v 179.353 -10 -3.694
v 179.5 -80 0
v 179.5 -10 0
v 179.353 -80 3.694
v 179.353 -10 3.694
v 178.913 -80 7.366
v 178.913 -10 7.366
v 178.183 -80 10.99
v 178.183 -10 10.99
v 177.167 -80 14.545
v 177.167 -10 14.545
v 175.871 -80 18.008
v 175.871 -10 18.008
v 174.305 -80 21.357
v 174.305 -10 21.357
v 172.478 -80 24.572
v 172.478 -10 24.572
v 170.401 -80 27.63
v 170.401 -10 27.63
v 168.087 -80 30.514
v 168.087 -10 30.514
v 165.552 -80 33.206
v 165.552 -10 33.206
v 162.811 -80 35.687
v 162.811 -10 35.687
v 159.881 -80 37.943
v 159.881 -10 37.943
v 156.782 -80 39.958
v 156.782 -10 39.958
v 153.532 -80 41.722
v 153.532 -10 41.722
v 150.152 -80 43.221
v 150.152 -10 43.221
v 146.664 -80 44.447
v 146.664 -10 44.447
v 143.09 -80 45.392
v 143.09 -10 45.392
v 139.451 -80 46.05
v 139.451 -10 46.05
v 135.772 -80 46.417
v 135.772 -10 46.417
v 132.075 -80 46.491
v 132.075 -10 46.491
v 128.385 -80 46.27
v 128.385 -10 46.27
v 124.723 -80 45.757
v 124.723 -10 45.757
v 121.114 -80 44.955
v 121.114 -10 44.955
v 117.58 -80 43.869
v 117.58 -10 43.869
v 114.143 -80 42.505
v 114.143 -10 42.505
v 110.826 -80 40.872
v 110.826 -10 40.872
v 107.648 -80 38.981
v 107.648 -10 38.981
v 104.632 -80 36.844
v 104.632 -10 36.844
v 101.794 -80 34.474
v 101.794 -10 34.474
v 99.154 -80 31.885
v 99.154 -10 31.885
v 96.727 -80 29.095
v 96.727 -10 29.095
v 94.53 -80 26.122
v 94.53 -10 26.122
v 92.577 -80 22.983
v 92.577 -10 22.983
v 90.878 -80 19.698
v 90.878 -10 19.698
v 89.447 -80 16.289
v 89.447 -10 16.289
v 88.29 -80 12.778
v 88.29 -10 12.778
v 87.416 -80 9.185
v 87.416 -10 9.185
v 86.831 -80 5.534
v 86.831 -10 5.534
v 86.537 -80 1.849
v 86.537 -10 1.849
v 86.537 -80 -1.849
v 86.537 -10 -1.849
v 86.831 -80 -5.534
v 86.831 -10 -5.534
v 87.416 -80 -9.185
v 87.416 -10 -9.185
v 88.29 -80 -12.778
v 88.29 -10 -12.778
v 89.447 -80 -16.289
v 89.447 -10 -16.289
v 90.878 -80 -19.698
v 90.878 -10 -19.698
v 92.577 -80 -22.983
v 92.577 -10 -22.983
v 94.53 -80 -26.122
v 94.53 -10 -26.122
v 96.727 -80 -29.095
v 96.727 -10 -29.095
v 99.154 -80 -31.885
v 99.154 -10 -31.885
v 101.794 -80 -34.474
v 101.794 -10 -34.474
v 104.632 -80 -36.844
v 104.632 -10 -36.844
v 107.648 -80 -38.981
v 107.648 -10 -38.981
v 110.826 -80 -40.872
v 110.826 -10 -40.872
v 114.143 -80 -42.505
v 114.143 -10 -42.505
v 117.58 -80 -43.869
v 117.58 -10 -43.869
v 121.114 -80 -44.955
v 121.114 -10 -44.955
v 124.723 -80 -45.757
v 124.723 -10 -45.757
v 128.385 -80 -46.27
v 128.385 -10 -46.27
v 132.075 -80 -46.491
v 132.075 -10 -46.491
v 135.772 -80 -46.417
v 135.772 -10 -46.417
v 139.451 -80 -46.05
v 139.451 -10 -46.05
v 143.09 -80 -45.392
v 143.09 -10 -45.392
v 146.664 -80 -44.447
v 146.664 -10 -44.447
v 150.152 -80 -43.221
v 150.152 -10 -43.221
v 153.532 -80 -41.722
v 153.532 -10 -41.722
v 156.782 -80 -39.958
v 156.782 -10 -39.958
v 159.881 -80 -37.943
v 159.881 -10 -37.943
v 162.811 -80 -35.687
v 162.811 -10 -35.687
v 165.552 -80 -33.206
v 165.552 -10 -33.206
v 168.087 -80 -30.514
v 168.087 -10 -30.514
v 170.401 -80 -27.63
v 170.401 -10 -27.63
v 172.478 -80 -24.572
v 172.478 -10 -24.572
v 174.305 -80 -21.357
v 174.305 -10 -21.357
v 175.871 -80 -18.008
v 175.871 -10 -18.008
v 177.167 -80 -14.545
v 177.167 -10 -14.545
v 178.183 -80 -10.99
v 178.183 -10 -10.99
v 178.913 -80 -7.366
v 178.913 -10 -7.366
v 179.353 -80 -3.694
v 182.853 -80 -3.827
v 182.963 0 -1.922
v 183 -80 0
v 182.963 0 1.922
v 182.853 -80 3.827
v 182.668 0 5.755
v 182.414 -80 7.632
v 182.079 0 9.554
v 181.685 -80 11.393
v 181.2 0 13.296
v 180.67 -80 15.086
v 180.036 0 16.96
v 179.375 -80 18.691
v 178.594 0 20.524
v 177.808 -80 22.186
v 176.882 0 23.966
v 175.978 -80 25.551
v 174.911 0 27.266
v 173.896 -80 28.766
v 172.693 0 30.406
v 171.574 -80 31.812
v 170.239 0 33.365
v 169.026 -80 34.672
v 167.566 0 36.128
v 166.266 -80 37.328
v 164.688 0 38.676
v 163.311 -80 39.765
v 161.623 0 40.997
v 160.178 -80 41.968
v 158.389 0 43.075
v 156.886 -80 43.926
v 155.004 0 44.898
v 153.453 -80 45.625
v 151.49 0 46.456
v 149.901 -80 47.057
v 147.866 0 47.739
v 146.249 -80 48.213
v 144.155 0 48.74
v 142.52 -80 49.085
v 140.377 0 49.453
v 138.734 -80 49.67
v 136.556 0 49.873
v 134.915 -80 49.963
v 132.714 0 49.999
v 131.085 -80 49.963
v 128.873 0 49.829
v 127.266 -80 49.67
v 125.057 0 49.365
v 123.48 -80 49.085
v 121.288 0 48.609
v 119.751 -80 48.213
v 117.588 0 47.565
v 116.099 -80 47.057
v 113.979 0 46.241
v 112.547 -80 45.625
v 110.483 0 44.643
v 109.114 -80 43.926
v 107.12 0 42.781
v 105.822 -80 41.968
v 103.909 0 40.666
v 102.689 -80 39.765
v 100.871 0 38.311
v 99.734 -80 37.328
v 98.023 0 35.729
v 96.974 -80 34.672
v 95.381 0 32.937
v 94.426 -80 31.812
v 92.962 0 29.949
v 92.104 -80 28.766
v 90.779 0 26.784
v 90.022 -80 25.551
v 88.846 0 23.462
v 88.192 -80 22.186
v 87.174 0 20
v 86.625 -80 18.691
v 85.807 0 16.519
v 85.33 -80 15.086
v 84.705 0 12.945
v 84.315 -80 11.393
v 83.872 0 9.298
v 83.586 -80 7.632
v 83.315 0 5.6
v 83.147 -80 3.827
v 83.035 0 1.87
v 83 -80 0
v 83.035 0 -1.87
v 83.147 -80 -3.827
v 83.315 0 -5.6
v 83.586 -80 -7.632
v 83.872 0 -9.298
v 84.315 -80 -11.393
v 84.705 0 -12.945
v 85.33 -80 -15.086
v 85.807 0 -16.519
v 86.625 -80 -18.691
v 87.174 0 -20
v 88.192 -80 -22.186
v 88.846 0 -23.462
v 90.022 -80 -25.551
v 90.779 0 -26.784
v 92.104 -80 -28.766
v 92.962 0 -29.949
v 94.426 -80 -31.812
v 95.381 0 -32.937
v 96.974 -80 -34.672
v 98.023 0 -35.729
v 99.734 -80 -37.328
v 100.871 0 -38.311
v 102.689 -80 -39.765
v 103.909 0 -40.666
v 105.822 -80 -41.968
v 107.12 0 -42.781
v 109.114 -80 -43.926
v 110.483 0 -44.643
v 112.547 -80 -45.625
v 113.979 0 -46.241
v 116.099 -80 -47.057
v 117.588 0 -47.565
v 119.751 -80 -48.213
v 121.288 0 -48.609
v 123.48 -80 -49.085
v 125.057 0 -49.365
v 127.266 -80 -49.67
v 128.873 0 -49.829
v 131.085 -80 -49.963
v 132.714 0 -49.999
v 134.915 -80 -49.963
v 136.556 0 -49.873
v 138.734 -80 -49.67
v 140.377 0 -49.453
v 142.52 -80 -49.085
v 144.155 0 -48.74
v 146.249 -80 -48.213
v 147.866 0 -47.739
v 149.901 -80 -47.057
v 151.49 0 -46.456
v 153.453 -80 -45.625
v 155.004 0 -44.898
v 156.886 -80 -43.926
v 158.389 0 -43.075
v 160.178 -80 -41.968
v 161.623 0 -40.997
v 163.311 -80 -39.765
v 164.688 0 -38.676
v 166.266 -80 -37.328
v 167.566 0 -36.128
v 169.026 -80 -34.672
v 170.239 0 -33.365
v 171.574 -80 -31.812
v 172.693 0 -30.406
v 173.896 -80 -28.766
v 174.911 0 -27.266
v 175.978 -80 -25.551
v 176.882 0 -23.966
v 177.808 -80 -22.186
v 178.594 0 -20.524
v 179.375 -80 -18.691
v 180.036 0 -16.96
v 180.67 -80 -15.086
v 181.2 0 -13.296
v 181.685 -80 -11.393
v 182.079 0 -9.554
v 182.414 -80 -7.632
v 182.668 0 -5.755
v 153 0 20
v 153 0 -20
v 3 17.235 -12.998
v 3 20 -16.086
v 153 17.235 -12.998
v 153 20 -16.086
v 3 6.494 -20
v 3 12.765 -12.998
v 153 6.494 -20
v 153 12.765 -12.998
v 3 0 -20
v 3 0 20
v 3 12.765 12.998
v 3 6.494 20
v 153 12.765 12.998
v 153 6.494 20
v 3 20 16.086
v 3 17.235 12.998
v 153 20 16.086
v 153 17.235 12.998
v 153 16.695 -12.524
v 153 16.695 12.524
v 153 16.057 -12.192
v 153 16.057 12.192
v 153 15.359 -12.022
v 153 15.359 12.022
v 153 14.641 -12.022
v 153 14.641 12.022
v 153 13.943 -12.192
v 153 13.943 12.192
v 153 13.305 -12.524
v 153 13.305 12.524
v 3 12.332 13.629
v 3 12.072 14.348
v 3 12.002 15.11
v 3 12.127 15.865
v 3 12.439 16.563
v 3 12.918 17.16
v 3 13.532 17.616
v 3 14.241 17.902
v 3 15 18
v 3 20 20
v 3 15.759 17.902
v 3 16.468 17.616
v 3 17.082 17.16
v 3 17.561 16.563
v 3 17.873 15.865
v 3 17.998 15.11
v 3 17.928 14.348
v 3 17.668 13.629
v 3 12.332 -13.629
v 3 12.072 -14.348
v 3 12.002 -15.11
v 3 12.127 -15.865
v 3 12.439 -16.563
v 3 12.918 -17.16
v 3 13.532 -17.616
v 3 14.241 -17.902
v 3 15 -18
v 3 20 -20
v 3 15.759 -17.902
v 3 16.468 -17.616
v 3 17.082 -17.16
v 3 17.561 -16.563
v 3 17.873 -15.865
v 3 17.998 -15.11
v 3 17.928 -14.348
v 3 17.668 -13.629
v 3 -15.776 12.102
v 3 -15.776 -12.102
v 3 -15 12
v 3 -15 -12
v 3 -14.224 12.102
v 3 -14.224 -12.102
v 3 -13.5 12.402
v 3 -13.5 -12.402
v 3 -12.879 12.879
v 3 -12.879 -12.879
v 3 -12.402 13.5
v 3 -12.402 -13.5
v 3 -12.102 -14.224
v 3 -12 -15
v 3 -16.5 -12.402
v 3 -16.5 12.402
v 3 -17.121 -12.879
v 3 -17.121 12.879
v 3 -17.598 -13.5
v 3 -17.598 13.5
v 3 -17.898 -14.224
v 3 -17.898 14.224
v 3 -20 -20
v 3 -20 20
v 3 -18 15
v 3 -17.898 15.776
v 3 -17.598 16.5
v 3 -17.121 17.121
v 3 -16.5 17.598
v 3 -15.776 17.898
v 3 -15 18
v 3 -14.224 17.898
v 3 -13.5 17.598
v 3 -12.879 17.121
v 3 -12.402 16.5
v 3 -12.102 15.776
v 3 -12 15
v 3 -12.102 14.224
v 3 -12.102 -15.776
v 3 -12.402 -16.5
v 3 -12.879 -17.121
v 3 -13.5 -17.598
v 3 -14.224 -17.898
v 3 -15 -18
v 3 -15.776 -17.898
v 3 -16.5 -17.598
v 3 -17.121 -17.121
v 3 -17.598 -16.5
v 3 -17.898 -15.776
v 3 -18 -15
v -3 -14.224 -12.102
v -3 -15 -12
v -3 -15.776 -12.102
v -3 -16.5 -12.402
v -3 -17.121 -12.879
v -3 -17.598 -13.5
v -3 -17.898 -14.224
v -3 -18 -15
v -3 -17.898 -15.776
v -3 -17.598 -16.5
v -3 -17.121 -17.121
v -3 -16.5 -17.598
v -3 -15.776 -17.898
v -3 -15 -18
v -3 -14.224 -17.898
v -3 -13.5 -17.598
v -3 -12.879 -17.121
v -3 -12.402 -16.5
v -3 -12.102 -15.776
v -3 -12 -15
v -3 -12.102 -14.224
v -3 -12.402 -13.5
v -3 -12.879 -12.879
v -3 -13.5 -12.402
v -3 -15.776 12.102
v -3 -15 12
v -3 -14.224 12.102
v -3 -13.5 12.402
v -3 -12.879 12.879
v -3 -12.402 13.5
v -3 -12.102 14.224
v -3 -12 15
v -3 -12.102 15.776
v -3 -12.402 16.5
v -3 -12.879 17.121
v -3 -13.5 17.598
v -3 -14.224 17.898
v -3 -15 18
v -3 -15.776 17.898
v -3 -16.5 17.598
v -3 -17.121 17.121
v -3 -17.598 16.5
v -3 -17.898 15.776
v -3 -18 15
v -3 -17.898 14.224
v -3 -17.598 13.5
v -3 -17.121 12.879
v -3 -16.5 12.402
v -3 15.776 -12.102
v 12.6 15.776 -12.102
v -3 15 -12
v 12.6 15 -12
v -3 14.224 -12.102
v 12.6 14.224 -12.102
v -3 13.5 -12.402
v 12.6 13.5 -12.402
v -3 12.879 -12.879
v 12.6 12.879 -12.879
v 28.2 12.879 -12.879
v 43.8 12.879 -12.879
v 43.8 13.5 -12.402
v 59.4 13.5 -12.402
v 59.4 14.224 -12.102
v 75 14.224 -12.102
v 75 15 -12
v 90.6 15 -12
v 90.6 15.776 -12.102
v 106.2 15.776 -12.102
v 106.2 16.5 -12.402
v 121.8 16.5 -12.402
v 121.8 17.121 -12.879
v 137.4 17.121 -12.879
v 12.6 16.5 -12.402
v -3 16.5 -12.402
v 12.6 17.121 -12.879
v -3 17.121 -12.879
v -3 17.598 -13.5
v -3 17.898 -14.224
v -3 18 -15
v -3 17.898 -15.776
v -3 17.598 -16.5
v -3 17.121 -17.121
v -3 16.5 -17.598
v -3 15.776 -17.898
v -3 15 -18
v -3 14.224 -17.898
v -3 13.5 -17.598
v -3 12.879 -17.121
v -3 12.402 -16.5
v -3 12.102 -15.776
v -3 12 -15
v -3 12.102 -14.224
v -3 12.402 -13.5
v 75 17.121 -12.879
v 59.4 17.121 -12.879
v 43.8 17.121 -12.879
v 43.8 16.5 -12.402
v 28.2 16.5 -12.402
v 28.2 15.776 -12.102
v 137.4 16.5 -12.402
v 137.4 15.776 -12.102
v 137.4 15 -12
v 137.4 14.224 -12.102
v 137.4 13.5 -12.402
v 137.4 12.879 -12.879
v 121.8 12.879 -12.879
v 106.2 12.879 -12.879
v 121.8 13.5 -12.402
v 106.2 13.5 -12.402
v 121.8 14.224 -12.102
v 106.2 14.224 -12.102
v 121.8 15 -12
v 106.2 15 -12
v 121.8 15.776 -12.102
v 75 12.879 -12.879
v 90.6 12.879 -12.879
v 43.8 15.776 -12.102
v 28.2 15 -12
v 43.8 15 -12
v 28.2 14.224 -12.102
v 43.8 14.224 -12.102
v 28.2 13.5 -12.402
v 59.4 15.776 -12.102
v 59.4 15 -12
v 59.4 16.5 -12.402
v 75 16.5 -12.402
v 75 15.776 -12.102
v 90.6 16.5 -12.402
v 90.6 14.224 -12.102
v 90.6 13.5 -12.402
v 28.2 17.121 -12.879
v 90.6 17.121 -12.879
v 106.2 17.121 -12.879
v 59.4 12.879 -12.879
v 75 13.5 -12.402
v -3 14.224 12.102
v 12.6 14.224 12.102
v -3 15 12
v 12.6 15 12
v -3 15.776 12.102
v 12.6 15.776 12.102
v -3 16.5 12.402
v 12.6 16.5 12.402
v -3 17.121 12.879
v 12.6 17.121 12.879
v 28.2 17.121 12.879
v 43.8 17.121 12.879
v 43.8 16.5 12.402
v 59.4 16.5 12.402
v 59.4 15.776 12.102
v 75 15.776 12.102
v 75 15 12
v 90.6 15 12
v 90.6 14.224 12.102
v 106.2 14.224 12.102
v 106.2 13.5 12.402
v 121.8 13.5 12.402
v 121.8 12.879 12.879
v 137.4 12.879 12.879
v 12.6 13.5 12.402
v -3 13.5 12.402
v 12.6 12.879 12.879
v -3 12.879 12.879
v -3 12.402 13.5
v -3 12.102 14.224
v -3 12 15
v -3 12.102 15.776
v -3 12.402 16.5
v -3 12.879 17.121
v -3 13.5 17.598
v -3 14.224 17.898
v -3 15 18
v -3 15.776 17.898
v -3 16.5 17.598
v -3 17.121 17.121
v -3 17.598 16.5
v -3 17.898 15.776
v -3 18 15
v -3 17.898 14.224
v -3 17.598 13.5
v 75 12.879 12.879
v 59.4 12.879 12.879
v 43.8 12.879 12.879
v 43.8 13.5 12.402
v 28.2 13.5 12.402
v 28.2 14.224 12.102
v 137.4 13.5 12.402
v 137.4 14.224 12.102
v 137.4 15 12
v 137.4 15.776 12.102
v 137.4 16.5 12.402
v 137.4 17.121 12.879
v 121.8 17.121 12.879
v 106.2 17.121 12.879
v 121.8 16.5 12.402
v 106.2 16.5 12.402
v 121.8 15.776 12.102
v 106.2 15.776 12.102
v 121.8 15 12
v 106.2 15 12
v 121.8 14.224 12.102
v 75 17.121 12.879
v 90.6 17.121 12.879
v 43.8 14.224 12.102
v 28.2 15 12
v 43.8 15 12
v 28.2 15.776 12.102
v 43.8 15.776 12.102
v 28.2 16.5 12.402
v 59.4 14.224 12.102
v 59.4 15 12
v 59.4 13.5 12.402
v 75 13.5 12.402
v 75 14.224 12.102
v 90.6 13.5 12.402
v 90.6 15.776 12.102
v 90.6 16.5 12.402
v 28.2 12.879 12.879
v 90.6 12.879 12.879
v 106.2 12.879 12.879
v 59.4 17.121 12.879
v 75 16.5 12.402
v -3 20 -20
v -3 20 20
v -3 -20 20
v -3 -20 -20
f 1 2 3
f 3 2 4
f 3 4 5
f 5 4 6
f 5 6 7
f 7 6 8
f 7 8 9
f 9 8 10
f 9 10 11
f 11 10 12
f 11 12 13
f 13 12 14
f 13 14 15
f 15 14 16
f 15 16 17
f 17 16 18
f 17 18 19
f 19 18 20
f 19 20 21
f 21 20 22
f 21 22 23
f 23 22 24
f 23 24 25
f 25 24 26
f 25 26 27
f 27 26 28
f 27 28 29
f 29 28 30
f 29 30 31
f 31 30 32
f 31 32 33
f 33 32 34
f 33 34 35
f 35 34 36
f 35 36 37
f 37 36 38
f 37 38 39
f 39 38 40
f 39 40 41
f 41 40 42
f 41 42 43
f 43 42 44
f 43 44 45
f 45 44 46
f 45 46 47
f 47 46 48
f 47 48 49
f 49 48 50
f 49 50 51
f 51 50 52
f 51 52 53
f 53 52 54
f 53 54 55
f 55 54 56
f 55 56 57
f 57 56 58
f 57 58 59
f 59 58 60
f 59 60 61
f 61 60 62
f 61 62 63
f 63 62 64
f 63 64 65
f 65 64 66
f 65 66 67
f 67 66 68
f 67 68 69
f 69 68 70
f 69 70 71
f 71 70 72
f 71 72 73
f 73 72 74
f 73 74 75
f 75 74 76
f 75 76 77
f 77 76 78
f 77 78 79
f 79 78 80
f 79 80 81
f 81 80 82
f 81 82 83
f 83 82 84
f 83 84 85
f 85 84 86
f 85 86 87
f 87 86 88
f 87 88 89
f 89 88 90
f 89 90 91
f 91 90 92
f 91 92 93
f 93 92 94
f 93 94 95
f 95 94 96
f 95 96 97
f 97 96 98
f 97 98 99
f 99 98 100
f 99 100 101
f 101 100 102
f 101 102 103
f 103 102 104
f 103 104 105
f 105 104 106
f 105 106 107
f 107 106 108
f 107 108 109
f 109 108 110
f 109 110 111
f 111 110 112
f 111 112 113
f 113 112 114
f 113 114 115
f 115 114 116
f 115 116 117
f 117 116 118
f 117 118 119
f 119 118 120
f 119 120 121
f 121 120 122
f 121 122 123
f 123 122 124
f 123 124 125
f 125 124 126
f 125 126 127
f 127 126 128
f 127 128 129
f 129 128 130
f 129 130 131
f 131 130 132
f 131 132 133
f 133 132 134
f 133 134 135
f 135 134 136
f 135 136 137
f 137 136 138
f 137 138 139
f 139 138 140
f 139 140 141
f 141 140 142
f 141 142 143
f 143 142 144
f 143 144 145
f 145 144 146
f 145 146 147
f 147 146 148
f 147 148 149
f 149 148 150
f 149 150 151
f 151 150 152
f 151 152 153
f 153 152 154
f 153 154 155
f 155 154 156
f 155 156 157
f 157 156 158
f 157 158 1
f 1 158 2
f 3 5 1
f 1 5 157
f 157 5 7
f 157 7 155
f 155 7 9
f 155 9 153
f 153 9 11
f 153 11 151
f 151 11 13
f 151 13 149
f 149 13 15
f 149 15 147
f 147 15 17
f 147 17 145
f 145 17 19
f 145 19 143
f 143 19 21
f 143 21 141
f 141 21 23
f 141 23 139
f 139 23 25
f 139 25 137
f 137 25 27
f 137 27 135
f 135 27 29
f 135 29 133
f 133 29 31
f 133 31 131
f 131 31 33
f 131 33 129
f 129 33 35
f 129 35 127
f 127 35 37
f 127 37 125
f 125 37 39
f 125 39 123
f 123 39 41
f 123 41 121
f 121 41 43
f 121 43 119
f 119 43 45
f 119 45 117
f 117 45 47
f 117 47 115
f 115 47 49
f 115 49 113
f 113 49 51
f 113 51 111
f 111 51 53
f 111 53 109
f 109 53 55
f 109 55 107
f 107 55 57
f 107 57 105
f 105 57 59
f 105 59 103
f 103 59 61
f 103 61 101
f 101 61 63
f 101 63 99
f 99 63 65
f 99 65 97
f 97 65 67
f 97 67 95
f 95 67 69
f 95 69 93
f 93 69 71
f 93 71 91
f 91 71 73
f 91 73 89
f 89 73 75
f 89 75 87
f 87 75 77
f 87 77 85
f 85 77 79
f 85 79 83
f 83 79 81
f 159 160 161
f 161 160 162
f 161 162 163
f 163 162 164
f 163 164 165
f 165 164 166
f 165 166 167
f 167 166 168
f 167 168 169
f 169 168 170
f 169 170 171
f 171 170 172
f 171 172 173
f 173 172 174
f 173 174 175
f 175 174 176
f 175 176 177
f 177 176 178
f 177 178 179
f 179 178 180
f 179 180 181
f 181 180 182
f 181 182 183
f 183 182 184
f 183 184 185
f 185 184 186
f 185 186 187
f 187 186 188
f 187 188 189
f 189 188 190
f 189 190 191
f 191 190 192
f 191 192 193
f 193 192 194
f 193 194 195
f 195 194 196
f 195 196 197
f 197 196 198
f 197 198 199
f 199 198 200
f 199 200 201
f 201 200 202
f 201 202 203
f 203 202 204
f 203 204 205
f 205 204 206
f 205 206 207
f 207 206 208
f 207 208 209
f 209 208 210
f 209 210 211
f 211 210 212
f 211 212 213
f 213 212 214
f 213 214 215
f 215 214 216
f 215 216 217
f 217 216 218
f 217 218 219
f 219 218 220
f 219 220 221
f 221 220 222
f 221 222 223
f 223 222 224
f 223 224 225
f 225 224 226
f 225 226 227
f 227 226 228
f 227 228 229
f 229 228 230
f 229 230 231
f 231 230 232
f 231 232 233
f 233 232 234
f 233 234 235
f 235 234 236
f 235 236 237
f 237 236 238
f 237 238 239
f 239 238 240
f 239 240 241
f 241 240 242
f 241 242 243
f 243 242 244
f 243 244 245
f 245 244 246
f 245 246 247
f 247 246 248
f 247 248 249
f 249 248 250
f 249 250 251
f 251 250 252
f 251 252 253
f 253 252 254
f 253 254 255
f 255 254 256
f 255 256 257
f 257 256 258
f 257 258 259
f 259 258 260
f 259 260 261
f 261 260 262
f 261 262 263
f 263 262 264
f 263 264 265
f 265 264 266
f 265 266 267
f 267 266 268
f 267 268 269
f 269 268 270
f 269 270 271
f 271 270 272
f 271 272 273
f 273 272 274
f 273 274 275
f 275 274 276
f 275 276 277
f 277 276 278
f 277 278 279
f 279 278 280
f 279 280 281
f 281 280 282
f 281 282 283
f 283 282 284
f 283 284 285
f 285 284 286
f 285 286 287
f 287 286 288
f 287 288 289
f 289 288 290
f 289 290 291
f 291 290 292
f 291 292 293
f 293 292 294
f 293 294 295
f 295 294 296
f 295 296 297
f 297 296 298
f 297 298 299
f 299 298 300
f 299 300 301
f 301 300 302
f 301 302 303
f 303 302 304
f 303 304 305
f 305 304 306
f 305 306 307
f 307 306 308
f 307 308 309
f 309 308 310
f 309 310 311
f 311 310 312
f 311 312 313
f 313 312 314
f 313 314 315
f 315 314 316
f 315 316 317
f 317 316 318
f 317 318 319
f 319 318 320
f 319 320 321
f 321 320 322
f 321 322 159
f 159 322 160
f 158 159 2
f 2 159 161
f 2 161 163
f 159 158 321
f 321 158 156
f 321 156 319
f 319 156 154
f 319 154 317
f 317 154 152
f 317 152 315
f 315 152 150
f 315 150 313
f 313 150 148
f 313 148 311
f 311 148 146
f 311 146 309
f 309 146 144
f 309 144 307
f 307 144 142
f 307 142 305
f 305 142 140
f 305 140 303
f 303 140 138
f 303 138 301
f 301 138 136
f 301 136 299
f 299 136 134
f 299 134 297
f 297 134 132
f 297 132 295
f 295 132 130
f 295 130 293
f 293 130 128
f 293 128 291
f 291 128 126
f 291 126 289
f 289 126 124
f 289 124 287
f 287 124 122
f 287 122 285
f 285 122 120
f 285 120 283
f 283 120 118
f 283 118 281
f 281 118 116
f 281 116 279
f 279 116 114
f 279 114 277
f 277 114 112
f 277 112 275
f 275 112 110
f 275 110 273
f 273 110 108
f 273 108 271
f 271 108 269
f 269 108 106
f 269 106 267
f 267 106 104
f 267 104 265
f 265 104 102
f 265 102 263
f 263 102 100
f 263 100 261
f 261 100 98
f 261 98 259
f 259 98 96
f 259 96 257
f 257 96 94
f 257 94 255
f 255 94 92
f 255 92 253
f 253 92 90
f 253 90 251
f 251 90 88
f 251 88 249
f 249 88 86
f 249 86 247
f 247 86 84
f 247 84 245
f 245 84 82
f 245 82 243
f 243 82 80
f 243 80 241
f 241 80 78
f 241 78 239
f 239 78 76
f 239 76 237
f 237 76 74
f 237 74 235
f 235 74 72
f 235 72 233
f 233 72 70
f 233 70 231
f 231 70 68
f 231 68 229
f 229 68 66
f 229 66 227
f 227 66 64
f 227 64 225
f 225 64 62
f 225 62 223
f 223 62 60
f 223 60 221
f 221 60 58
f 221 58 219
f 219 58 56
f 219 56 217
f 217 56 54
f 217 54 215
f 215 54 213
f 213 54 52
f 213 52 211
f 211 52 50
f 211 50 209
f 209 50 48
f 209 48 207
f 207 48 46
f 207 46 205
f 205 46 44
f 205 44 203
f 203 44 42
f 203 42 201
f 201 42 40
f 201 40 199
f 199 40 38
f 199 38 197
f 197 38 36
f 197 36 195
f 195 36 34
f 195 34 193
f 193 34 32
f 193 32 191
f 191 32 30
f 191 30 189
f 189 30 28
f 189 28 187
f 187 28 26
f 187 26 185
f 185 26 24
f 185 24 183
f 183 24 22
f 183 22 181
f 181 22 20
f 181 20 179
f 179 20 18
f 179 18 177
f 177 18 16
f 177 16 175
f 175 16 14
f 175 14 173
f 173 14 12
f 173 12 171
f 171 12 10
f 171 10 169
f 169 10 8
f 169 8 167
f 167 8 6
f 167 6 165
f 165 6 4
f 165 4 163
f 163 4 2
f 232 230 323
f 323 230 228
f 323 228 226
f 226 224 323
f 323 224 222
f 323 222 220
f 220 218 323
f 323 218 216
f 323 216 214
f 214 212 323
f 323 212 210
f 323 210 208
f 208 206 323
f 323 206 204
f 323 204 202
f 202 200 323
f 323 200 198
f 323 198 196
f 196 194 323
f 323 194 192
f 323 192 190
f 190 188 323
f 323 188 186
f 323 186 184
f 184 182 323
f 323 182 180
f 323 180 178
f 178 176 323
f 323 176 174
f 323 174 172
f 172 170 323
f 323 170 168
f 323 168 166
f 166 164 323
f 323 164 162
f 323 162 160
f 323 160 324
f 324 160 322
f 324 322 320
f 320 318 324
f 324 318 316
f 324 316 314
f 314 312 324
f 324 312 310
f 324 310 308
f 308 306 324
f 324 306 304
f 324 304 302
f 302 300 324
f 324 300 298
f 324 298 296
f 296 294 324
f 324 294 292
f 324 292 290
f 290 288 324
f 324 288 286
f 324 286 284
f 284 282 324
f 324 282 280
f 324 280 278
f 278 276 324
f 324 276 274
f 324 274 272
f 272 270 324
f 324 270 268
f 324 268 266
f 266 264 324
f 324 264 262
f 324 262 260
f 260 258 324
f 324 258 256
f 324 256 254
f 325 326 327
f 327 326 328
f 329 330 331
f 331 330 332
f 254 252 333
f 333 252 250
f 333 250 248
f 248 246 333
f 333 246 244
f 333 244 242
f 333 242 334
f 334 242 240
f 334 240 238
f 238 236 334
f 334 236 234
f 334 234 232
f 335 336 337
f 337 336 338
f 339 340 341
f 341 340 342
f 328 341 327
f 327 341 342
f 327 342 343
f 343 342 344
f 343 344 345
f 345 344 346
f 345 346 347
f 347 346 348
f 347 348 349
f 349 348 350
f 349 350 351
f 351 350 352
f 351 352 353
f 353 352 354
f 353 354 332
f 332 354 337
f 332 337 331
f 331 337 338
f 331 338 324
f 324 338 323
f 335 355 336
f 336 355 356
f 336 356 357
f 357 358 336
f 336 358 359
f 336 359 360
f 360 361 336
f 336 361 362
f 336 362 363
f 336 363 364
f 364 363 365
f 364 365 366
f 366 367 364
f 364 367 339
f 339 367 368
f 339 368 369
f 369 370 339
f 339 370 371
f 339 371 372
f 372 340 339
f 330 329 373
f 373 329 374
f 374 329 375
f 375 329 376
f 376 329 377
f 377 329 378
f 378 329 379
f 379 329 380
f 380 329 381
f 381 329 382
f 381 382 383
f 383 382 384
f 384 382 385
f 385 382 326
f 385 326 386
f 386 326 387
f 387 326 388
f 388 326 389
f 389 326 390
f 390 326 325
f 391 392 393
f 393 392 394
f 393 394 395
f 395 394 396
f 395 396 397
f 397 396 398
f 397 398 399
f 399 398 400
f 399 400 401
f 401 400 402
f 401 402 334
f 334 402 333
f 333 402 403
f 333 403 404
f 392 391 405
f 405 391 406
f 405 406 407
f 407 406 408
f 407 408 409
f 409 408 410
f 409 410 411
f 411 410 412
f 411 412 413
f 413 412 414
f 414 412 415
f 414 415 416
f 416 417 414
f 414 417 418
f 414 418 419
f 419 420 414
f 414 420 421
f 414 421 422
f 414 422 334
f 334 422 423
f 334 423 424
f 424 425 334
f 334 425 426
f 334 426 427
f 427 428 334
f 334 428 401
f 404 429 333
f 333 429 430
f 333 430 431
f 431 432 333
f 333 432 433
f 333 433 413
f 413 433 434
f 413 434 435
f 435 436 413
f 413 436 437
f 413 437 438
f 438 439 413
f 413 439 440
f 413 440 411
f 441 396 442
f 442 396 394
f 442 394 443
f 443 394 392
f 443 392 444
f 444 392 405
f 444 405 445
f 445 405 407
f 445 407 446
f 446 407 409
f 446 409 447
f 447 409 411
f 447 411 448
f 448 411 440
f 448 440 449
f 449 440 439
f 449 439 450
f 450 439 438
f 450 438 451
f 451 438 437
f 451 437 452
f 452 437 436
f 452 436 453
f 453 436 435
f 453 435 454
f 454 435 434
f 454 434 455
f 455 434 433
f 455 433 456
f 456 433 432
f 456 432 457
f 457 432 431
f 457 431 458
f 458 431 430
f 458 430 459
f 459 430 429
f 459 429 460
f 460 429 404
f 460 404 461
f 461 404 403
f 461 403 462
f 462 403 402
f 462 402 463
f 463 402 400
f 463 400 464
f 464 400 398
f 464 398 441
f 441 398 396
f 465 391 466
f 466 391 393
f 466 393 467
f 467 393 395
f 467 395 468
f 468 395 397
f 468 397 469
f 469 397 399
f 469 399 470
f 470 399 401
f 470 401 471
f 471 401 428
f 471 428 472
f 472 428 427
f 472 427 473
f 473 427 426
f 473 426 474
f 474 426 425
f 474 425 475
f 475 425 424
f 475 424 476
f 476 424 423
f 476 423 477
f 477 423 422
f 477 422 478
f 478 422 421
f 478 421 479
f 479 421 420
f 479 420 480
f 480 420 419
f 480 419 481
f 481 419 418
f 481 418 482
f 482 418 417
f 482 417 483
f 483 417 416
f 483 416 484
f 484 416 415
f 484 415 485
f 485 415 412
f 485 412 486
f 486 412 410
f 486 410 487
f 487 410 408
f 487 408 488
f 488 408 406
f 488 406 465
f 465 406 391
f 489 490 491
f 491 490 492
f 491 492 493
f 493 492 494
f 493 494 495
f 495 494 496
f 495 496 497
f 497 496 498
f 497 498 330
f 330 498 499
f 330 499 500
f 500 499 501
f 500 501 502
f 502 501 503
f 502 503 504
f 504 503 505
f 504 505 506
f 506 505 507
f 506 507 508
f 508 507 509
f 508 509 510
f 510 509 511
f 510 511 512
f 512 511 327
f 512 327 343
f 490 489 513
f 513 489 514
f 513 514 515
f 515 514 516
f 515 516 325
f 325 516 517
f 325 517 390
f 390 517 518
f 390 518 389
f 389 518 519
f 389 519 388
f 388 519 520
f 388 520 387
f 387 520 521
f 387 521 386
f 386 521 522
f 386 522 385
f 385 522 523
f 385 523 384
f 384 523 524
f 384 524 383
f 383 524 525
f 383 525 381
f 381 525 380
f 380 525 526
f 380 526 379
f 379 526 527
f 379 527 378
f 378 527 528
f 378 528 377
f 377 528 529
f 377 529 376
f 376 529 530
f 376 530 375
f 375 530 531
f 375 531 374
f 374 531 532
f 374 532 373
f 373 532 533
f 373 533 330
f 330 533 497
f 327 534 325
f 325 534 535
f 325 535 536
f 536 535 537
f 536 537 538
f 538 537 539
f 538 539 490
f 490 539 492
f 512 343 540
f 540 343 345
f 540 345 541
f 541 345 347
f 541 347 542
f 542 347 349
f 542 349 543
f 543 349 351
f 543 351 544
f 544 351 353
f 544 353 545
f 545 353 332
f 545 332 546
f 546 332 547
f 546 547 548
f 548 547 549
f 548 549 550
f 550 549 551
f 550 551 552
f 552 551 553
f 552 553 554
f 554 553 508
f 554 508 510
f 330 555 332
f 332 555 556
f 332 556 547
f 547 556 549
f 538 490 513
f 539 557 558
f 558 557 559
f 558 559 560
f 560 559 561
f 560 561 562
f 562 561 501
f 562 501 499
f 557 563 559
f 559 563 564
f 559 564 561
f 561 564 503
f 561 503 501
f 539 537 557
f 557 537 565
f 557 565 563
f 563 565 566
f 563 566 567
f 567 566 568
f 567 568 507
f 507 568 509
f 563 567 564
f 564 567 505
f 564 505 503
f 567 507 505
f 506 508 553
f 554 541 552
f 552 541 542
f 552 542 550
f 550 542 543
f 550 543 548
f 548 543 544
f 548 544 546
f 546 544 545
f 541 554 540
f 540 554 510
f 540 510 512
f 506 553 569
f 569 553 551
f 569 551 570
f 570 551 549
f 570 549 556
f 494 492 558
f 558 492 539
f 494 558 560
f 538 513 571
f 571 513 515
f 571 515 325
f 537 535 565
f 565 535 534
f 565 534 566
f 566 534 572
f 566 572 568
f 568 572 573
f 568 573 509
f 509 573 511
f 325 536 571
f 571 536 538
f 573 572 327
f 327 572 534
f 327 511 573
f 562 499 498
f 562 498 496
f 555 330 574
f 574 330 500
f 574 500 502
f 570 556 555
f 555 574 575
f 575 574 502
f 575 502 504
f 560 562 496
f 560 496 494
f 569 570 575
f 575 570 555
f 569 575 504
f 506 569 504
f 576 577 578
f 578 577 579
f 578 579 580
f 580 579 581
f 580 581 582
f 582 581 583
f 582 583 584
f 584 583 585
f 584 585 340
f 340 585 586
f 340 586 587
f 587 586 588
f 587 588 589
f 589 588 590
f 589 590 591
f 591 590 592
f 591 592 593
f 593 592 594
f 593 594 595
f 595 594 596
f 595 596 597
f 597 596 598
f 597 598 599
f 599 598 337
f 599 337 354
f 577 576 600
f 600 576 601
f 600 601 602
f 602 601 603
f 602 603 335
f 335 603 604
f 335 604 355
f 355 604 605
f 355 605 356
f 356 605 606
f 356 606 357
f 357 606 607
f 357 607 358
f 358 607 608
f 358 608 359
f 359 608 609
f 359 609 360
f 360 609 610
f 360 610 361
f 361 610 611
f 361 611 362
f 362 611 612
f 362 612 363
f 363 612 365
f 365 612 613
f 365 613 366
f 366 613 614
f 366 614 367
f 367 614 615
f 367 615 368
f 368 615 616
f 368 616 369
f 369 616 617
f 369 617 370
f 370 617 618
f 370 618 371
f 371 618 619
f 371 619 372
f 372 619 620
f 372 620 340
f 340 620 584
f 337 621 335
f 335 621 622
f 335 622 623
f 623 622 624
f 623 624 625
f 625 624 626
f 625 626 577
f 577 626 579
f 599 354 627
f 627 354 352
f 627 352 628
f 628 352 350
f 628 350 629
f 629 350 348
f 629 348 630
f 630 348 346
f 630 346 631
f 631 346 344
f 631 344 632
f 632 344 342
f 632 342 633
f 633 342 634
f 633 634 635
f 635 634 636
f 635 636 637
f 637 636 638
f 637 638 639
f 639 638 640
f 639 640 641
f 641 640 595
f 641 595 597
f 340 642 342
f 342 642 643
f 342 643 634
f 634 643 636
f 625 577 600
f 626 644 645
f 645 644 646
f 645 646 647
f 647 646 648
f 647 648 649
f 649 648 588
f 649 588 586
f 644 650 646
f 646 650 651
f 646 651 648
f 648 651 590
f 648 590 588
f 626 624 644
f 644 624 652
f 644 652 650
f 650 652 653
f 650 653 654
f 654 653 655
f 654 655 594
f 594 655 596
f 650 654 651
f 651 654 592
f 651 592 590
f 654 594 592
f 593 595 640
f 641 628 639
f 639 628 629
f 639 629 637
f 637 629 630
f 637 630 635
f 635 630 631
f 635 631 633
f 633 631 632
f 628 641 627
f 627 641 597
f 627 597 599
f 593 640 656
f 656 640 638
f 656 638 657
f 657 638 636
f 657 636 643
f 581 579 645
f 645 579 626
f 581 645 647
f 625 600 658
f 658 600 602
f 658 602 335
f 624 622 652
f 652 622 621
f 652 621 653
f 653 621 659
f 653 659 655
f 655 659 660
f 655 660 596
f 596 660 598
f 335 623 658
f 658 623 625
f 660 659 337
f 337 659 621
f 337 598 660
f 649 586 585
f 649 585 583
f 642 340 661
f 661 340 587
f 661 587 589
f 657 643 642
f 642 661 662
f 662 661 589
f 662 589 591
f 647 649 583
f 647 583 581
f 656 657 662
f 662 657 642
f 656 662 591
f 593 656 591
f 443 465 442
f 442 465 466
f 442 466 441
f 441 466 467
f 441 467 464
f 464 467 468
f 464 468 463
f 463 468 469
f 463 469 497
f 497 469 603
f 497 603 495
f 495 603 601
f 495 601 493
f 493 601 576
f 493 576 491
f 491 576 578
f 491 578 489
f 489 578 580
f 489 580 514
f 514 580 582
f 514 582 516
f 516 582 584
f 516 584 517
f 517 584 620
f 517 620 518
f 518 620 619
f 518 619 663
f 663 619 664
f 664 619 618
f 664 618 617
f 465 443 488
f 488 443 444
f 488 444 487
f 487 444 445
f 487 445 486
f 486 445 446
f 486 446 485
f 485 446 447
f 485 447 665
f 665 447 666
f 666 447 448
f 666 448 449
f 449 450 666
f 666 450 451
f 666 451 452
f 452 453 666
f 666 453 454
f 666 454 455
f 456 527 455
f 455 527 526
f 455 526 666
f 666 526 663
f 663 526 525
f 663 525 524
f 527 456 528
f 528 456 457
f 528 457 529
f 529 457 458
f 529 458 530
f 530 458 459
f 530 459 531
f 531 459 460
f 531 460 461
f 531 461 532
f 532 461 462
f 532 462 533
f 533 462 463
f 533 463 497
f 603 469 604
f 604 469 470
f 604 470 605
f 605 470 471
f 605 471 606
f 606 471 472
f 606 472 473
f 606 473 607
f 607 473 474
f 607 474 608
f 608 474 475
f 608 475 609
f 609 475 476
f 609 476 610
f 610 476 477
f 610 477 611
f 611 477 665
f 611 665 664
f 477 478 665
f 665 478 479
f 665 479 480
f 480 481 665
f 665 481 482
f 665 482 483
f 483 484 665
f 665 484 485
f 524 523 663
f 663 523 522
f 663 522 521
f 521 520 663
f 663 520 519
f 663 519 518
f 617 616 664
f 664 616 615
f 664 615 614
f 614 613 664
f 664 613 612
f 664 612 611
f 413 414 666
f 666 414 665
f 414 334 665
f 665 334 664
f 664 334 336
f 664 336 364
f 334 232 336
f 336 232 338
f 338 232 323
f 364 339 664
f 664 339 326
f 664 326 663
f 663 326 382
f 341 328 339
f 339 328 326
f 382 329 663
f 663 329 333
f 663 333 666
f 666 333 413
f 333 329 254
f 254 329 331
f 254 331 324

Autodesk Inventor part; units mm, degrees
ref_plane "YZ Plane" through (0, 0, 0) normal (1, 0, 0) x (0, 1, 0)
ref_plane "XZ Plane" through (0, 0, 0) normal (0, 1, 0) x (-1, 0, 0)
sketch "Sketch1" plane through (0, 0, 0) normal (1, 0, 0) x (0, 1, 0)
  line L0 (-20, 20) -> (20, 20)
  line L1 (20, 20) -> (20, -20)
  line L2 (20, -20) -> (-20, -20)
  line L3 (-20, -20) -> (-20, 20)
  line L4 (-20, 20) -> (20, -20) construction
  line L5 (20, 20) -> (-20, -20) construction
  point P0 (0, 0)
  dimension "d0" = 40
  dimension "d1" = 40
extrude "Extrusion1" add sketch "Sketch1" along normal mid plane 6
sketch "Sketch2" plane through (3, 0, 0) normal (1, 0, 0) x (0, 0, -1)
  line L0 (20, 20) -> (-20, 20) projected
  line L1 (-20, 20) -> (-15, 20)
  line L2 (-15, 20) -> (-15, 15)
  line L3 (-15, 15) -> (-20, 15)
  line L4 (-20, 20) -> (-20, -20) projected
  circle A0 centre (-15, 15) radius 3
  point P0 (0, 0)
  dimension "d4" = 5
  dimension "d5" = 5
  dimension "d6" = 6
extrude "Extrusion2" cut sketch "Sketch2" against normal blind 6 contours A0 L3 L2 | L2 L3 A0
mirror "Mirror1" about plane through (0, 0, 0) normal (0, 0, 1) of "Extrusion2"
mirror "Mirror2" about plane through (0, 0, 0) normal (0, 1, 0) of "Extrusion2", "Mirror1"
ref_plane "Work Plane4" through (0, 0, 20) normal (0, 0, -1) x (1, 0, 0)
ref_plane "Work Plane3" through (0, 0, 0) normal (0, 0, -1) x (1, 0, 0)
sketch "Sketch3" plane through (0, 0, 20) normal (0, 0, -1) x (1, 0, 0)
  line L0 (3, -20) -> (3, 20) projected
  line L1 (3, 0) -> (3, -15)
  line L2 (3, -15) -> (153, -15) construction
  line L3 (3, 0) -> (3, -7.5)
  point P0 (0, 0)
  dimension "d10" = 15
  dimension "bracketlength" = 150
  dimension "d12" = 7.5
sketch "Sketch4" plane through (3, 0, 0) normal (1, 0, 0) x (0, 0, -1)
  circle A0 centre (-15, 15) radius 3 projected
  circle A1 centre (15, 15) radius 3 projected
  circle A2 centre (-15, 15) radius 3 projected
  circle A3 centre (-15, 15) radius 3
  circle A4 centre (15, 15) radius 3
  line L0 (-20, 20) -> (20, 20) projected
  line L1 (-16.0857, 20) -> (-12.9984, 17.2346)
  line L2 (-17.7822, 15) -> (18, 15)
  circle A5 centre (15, 15) radius 3 projected
  line L3 (-16.0857, 10) -> (-12.9984, 12.7654)
  line L4 (0, 20) -> (0, 0)
  line L5 (-16.0857, 10) -> (-20, 6.4938)
  line L6 (-20, -20) -> (-20, 20) projected
  line L7 (-20, 6.4938) -> (-20, 0)
  circle A6 centre (15, 15) radius 3
  line L8 (16.0857, 20) -> (12.9984, 17.2346)
  line L9 (16.0857, 10) -> (12.9984, 12.7654)
  line L10 (16.0857, 10) -> (20, 6.4938)
  line L11 (20, 6.4938) -> (20, 0)
  line L12 (-16.0857, 20) -> (16.0857, 20)
  line L13 (-20, 0) -> (20, 0)
extrude "Extrusion3" add sketch "Sketch4" along normal blind 150 contours L2 L4 L13 L6 L5 L3 A0 | A0 L1 L0 L4 L2 | L4 L0 L8 A1 L2 | L2 A1 L9 L10 L11 L13 L4
sketch "Sketch5" plane through (3, 0, -20) normal (0, -1, 0) x (1, 0, 0)
  line L0 (150, 0) -> (150, 40)
  line L1 (150, 40) -> (150, 50)
  line L2 (150, 50) -> (150, -10)
  line L3 (150, 3.9143) -> (150, 36.0857) projected
  line L4 (150, 20) -> (110, 20)
  circle A0 centre (130, 20) radius 50
  point P0 (-3, 20)
  dimension "d15" = 10
  dimension "d16" = 60
  dimension "d17" = 40
  dimension "panmotorholderdiam" = 100
extrude "Extrusion4" add sketch "Sketch5" along normal blind 80
sketch "Sketch6" plane through (133, -80, 0) normal (0, -1, 0) x (1, 0, 0)
  circle A0 centre (0, 0) radius 46.5
  point P0 (-133, 0)
  dimension "d21" = 93
extrude "Extrusion5" cut sketch "Sketch6" against normal blind 70
ref_plane "Work Plane1" through (0, 0, 0) normal (0, 0, 1) x (1, 0, 0)
ref_plane "Work Plane2" through (0, 0, 0) normal (0, 0, -1) x (1, 0, 0)
properties part number "TopBracket" material "ABS Plastic"
